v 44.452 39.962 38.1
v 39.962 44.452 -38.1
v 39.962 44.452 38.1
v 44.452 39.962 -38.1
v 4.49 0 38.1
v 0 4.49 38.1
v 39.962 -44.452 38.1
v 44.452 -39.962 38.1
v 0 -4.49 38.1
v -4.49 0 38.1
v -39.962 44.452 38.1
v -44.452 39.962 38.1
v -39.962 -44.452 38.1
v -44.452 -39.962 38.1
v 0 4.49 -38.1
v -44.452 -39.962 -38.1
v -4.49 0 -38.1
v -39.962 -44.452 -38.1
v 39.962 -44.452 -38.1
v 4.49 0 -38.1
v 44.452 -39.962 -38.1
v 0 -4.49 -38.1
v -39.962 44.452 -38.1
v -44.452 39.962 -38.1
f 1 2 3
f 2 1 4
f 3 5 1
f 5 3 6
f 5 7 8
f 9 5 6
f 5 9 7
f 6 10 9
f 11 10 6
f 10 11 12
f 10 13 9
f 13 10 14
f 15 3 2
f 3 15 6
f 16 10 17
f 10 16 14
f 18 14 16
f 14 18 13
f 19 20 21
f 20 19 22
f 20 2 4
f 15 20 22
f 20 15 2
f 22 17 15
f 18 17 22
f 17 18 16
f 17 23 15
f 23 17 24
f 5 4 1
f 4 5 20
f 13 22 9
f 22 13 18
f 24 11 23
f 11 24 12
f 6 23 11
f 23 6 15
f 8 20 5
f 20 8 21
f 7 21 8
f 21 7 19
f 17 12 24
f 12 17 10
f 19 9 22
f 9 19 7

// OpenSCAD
length = 25.4 * 4.7;  // 4 inches (kinda)
height = 25.4 * 3;    // 3 inches
thickness = 25.4 / 4; // 0.25 inches

rotate ([0, 0, 45])
  cube ([length, thickness, height], center = true);
rotate ([0, 0, 135])
  cube ([length, thickness, height], center = true);
